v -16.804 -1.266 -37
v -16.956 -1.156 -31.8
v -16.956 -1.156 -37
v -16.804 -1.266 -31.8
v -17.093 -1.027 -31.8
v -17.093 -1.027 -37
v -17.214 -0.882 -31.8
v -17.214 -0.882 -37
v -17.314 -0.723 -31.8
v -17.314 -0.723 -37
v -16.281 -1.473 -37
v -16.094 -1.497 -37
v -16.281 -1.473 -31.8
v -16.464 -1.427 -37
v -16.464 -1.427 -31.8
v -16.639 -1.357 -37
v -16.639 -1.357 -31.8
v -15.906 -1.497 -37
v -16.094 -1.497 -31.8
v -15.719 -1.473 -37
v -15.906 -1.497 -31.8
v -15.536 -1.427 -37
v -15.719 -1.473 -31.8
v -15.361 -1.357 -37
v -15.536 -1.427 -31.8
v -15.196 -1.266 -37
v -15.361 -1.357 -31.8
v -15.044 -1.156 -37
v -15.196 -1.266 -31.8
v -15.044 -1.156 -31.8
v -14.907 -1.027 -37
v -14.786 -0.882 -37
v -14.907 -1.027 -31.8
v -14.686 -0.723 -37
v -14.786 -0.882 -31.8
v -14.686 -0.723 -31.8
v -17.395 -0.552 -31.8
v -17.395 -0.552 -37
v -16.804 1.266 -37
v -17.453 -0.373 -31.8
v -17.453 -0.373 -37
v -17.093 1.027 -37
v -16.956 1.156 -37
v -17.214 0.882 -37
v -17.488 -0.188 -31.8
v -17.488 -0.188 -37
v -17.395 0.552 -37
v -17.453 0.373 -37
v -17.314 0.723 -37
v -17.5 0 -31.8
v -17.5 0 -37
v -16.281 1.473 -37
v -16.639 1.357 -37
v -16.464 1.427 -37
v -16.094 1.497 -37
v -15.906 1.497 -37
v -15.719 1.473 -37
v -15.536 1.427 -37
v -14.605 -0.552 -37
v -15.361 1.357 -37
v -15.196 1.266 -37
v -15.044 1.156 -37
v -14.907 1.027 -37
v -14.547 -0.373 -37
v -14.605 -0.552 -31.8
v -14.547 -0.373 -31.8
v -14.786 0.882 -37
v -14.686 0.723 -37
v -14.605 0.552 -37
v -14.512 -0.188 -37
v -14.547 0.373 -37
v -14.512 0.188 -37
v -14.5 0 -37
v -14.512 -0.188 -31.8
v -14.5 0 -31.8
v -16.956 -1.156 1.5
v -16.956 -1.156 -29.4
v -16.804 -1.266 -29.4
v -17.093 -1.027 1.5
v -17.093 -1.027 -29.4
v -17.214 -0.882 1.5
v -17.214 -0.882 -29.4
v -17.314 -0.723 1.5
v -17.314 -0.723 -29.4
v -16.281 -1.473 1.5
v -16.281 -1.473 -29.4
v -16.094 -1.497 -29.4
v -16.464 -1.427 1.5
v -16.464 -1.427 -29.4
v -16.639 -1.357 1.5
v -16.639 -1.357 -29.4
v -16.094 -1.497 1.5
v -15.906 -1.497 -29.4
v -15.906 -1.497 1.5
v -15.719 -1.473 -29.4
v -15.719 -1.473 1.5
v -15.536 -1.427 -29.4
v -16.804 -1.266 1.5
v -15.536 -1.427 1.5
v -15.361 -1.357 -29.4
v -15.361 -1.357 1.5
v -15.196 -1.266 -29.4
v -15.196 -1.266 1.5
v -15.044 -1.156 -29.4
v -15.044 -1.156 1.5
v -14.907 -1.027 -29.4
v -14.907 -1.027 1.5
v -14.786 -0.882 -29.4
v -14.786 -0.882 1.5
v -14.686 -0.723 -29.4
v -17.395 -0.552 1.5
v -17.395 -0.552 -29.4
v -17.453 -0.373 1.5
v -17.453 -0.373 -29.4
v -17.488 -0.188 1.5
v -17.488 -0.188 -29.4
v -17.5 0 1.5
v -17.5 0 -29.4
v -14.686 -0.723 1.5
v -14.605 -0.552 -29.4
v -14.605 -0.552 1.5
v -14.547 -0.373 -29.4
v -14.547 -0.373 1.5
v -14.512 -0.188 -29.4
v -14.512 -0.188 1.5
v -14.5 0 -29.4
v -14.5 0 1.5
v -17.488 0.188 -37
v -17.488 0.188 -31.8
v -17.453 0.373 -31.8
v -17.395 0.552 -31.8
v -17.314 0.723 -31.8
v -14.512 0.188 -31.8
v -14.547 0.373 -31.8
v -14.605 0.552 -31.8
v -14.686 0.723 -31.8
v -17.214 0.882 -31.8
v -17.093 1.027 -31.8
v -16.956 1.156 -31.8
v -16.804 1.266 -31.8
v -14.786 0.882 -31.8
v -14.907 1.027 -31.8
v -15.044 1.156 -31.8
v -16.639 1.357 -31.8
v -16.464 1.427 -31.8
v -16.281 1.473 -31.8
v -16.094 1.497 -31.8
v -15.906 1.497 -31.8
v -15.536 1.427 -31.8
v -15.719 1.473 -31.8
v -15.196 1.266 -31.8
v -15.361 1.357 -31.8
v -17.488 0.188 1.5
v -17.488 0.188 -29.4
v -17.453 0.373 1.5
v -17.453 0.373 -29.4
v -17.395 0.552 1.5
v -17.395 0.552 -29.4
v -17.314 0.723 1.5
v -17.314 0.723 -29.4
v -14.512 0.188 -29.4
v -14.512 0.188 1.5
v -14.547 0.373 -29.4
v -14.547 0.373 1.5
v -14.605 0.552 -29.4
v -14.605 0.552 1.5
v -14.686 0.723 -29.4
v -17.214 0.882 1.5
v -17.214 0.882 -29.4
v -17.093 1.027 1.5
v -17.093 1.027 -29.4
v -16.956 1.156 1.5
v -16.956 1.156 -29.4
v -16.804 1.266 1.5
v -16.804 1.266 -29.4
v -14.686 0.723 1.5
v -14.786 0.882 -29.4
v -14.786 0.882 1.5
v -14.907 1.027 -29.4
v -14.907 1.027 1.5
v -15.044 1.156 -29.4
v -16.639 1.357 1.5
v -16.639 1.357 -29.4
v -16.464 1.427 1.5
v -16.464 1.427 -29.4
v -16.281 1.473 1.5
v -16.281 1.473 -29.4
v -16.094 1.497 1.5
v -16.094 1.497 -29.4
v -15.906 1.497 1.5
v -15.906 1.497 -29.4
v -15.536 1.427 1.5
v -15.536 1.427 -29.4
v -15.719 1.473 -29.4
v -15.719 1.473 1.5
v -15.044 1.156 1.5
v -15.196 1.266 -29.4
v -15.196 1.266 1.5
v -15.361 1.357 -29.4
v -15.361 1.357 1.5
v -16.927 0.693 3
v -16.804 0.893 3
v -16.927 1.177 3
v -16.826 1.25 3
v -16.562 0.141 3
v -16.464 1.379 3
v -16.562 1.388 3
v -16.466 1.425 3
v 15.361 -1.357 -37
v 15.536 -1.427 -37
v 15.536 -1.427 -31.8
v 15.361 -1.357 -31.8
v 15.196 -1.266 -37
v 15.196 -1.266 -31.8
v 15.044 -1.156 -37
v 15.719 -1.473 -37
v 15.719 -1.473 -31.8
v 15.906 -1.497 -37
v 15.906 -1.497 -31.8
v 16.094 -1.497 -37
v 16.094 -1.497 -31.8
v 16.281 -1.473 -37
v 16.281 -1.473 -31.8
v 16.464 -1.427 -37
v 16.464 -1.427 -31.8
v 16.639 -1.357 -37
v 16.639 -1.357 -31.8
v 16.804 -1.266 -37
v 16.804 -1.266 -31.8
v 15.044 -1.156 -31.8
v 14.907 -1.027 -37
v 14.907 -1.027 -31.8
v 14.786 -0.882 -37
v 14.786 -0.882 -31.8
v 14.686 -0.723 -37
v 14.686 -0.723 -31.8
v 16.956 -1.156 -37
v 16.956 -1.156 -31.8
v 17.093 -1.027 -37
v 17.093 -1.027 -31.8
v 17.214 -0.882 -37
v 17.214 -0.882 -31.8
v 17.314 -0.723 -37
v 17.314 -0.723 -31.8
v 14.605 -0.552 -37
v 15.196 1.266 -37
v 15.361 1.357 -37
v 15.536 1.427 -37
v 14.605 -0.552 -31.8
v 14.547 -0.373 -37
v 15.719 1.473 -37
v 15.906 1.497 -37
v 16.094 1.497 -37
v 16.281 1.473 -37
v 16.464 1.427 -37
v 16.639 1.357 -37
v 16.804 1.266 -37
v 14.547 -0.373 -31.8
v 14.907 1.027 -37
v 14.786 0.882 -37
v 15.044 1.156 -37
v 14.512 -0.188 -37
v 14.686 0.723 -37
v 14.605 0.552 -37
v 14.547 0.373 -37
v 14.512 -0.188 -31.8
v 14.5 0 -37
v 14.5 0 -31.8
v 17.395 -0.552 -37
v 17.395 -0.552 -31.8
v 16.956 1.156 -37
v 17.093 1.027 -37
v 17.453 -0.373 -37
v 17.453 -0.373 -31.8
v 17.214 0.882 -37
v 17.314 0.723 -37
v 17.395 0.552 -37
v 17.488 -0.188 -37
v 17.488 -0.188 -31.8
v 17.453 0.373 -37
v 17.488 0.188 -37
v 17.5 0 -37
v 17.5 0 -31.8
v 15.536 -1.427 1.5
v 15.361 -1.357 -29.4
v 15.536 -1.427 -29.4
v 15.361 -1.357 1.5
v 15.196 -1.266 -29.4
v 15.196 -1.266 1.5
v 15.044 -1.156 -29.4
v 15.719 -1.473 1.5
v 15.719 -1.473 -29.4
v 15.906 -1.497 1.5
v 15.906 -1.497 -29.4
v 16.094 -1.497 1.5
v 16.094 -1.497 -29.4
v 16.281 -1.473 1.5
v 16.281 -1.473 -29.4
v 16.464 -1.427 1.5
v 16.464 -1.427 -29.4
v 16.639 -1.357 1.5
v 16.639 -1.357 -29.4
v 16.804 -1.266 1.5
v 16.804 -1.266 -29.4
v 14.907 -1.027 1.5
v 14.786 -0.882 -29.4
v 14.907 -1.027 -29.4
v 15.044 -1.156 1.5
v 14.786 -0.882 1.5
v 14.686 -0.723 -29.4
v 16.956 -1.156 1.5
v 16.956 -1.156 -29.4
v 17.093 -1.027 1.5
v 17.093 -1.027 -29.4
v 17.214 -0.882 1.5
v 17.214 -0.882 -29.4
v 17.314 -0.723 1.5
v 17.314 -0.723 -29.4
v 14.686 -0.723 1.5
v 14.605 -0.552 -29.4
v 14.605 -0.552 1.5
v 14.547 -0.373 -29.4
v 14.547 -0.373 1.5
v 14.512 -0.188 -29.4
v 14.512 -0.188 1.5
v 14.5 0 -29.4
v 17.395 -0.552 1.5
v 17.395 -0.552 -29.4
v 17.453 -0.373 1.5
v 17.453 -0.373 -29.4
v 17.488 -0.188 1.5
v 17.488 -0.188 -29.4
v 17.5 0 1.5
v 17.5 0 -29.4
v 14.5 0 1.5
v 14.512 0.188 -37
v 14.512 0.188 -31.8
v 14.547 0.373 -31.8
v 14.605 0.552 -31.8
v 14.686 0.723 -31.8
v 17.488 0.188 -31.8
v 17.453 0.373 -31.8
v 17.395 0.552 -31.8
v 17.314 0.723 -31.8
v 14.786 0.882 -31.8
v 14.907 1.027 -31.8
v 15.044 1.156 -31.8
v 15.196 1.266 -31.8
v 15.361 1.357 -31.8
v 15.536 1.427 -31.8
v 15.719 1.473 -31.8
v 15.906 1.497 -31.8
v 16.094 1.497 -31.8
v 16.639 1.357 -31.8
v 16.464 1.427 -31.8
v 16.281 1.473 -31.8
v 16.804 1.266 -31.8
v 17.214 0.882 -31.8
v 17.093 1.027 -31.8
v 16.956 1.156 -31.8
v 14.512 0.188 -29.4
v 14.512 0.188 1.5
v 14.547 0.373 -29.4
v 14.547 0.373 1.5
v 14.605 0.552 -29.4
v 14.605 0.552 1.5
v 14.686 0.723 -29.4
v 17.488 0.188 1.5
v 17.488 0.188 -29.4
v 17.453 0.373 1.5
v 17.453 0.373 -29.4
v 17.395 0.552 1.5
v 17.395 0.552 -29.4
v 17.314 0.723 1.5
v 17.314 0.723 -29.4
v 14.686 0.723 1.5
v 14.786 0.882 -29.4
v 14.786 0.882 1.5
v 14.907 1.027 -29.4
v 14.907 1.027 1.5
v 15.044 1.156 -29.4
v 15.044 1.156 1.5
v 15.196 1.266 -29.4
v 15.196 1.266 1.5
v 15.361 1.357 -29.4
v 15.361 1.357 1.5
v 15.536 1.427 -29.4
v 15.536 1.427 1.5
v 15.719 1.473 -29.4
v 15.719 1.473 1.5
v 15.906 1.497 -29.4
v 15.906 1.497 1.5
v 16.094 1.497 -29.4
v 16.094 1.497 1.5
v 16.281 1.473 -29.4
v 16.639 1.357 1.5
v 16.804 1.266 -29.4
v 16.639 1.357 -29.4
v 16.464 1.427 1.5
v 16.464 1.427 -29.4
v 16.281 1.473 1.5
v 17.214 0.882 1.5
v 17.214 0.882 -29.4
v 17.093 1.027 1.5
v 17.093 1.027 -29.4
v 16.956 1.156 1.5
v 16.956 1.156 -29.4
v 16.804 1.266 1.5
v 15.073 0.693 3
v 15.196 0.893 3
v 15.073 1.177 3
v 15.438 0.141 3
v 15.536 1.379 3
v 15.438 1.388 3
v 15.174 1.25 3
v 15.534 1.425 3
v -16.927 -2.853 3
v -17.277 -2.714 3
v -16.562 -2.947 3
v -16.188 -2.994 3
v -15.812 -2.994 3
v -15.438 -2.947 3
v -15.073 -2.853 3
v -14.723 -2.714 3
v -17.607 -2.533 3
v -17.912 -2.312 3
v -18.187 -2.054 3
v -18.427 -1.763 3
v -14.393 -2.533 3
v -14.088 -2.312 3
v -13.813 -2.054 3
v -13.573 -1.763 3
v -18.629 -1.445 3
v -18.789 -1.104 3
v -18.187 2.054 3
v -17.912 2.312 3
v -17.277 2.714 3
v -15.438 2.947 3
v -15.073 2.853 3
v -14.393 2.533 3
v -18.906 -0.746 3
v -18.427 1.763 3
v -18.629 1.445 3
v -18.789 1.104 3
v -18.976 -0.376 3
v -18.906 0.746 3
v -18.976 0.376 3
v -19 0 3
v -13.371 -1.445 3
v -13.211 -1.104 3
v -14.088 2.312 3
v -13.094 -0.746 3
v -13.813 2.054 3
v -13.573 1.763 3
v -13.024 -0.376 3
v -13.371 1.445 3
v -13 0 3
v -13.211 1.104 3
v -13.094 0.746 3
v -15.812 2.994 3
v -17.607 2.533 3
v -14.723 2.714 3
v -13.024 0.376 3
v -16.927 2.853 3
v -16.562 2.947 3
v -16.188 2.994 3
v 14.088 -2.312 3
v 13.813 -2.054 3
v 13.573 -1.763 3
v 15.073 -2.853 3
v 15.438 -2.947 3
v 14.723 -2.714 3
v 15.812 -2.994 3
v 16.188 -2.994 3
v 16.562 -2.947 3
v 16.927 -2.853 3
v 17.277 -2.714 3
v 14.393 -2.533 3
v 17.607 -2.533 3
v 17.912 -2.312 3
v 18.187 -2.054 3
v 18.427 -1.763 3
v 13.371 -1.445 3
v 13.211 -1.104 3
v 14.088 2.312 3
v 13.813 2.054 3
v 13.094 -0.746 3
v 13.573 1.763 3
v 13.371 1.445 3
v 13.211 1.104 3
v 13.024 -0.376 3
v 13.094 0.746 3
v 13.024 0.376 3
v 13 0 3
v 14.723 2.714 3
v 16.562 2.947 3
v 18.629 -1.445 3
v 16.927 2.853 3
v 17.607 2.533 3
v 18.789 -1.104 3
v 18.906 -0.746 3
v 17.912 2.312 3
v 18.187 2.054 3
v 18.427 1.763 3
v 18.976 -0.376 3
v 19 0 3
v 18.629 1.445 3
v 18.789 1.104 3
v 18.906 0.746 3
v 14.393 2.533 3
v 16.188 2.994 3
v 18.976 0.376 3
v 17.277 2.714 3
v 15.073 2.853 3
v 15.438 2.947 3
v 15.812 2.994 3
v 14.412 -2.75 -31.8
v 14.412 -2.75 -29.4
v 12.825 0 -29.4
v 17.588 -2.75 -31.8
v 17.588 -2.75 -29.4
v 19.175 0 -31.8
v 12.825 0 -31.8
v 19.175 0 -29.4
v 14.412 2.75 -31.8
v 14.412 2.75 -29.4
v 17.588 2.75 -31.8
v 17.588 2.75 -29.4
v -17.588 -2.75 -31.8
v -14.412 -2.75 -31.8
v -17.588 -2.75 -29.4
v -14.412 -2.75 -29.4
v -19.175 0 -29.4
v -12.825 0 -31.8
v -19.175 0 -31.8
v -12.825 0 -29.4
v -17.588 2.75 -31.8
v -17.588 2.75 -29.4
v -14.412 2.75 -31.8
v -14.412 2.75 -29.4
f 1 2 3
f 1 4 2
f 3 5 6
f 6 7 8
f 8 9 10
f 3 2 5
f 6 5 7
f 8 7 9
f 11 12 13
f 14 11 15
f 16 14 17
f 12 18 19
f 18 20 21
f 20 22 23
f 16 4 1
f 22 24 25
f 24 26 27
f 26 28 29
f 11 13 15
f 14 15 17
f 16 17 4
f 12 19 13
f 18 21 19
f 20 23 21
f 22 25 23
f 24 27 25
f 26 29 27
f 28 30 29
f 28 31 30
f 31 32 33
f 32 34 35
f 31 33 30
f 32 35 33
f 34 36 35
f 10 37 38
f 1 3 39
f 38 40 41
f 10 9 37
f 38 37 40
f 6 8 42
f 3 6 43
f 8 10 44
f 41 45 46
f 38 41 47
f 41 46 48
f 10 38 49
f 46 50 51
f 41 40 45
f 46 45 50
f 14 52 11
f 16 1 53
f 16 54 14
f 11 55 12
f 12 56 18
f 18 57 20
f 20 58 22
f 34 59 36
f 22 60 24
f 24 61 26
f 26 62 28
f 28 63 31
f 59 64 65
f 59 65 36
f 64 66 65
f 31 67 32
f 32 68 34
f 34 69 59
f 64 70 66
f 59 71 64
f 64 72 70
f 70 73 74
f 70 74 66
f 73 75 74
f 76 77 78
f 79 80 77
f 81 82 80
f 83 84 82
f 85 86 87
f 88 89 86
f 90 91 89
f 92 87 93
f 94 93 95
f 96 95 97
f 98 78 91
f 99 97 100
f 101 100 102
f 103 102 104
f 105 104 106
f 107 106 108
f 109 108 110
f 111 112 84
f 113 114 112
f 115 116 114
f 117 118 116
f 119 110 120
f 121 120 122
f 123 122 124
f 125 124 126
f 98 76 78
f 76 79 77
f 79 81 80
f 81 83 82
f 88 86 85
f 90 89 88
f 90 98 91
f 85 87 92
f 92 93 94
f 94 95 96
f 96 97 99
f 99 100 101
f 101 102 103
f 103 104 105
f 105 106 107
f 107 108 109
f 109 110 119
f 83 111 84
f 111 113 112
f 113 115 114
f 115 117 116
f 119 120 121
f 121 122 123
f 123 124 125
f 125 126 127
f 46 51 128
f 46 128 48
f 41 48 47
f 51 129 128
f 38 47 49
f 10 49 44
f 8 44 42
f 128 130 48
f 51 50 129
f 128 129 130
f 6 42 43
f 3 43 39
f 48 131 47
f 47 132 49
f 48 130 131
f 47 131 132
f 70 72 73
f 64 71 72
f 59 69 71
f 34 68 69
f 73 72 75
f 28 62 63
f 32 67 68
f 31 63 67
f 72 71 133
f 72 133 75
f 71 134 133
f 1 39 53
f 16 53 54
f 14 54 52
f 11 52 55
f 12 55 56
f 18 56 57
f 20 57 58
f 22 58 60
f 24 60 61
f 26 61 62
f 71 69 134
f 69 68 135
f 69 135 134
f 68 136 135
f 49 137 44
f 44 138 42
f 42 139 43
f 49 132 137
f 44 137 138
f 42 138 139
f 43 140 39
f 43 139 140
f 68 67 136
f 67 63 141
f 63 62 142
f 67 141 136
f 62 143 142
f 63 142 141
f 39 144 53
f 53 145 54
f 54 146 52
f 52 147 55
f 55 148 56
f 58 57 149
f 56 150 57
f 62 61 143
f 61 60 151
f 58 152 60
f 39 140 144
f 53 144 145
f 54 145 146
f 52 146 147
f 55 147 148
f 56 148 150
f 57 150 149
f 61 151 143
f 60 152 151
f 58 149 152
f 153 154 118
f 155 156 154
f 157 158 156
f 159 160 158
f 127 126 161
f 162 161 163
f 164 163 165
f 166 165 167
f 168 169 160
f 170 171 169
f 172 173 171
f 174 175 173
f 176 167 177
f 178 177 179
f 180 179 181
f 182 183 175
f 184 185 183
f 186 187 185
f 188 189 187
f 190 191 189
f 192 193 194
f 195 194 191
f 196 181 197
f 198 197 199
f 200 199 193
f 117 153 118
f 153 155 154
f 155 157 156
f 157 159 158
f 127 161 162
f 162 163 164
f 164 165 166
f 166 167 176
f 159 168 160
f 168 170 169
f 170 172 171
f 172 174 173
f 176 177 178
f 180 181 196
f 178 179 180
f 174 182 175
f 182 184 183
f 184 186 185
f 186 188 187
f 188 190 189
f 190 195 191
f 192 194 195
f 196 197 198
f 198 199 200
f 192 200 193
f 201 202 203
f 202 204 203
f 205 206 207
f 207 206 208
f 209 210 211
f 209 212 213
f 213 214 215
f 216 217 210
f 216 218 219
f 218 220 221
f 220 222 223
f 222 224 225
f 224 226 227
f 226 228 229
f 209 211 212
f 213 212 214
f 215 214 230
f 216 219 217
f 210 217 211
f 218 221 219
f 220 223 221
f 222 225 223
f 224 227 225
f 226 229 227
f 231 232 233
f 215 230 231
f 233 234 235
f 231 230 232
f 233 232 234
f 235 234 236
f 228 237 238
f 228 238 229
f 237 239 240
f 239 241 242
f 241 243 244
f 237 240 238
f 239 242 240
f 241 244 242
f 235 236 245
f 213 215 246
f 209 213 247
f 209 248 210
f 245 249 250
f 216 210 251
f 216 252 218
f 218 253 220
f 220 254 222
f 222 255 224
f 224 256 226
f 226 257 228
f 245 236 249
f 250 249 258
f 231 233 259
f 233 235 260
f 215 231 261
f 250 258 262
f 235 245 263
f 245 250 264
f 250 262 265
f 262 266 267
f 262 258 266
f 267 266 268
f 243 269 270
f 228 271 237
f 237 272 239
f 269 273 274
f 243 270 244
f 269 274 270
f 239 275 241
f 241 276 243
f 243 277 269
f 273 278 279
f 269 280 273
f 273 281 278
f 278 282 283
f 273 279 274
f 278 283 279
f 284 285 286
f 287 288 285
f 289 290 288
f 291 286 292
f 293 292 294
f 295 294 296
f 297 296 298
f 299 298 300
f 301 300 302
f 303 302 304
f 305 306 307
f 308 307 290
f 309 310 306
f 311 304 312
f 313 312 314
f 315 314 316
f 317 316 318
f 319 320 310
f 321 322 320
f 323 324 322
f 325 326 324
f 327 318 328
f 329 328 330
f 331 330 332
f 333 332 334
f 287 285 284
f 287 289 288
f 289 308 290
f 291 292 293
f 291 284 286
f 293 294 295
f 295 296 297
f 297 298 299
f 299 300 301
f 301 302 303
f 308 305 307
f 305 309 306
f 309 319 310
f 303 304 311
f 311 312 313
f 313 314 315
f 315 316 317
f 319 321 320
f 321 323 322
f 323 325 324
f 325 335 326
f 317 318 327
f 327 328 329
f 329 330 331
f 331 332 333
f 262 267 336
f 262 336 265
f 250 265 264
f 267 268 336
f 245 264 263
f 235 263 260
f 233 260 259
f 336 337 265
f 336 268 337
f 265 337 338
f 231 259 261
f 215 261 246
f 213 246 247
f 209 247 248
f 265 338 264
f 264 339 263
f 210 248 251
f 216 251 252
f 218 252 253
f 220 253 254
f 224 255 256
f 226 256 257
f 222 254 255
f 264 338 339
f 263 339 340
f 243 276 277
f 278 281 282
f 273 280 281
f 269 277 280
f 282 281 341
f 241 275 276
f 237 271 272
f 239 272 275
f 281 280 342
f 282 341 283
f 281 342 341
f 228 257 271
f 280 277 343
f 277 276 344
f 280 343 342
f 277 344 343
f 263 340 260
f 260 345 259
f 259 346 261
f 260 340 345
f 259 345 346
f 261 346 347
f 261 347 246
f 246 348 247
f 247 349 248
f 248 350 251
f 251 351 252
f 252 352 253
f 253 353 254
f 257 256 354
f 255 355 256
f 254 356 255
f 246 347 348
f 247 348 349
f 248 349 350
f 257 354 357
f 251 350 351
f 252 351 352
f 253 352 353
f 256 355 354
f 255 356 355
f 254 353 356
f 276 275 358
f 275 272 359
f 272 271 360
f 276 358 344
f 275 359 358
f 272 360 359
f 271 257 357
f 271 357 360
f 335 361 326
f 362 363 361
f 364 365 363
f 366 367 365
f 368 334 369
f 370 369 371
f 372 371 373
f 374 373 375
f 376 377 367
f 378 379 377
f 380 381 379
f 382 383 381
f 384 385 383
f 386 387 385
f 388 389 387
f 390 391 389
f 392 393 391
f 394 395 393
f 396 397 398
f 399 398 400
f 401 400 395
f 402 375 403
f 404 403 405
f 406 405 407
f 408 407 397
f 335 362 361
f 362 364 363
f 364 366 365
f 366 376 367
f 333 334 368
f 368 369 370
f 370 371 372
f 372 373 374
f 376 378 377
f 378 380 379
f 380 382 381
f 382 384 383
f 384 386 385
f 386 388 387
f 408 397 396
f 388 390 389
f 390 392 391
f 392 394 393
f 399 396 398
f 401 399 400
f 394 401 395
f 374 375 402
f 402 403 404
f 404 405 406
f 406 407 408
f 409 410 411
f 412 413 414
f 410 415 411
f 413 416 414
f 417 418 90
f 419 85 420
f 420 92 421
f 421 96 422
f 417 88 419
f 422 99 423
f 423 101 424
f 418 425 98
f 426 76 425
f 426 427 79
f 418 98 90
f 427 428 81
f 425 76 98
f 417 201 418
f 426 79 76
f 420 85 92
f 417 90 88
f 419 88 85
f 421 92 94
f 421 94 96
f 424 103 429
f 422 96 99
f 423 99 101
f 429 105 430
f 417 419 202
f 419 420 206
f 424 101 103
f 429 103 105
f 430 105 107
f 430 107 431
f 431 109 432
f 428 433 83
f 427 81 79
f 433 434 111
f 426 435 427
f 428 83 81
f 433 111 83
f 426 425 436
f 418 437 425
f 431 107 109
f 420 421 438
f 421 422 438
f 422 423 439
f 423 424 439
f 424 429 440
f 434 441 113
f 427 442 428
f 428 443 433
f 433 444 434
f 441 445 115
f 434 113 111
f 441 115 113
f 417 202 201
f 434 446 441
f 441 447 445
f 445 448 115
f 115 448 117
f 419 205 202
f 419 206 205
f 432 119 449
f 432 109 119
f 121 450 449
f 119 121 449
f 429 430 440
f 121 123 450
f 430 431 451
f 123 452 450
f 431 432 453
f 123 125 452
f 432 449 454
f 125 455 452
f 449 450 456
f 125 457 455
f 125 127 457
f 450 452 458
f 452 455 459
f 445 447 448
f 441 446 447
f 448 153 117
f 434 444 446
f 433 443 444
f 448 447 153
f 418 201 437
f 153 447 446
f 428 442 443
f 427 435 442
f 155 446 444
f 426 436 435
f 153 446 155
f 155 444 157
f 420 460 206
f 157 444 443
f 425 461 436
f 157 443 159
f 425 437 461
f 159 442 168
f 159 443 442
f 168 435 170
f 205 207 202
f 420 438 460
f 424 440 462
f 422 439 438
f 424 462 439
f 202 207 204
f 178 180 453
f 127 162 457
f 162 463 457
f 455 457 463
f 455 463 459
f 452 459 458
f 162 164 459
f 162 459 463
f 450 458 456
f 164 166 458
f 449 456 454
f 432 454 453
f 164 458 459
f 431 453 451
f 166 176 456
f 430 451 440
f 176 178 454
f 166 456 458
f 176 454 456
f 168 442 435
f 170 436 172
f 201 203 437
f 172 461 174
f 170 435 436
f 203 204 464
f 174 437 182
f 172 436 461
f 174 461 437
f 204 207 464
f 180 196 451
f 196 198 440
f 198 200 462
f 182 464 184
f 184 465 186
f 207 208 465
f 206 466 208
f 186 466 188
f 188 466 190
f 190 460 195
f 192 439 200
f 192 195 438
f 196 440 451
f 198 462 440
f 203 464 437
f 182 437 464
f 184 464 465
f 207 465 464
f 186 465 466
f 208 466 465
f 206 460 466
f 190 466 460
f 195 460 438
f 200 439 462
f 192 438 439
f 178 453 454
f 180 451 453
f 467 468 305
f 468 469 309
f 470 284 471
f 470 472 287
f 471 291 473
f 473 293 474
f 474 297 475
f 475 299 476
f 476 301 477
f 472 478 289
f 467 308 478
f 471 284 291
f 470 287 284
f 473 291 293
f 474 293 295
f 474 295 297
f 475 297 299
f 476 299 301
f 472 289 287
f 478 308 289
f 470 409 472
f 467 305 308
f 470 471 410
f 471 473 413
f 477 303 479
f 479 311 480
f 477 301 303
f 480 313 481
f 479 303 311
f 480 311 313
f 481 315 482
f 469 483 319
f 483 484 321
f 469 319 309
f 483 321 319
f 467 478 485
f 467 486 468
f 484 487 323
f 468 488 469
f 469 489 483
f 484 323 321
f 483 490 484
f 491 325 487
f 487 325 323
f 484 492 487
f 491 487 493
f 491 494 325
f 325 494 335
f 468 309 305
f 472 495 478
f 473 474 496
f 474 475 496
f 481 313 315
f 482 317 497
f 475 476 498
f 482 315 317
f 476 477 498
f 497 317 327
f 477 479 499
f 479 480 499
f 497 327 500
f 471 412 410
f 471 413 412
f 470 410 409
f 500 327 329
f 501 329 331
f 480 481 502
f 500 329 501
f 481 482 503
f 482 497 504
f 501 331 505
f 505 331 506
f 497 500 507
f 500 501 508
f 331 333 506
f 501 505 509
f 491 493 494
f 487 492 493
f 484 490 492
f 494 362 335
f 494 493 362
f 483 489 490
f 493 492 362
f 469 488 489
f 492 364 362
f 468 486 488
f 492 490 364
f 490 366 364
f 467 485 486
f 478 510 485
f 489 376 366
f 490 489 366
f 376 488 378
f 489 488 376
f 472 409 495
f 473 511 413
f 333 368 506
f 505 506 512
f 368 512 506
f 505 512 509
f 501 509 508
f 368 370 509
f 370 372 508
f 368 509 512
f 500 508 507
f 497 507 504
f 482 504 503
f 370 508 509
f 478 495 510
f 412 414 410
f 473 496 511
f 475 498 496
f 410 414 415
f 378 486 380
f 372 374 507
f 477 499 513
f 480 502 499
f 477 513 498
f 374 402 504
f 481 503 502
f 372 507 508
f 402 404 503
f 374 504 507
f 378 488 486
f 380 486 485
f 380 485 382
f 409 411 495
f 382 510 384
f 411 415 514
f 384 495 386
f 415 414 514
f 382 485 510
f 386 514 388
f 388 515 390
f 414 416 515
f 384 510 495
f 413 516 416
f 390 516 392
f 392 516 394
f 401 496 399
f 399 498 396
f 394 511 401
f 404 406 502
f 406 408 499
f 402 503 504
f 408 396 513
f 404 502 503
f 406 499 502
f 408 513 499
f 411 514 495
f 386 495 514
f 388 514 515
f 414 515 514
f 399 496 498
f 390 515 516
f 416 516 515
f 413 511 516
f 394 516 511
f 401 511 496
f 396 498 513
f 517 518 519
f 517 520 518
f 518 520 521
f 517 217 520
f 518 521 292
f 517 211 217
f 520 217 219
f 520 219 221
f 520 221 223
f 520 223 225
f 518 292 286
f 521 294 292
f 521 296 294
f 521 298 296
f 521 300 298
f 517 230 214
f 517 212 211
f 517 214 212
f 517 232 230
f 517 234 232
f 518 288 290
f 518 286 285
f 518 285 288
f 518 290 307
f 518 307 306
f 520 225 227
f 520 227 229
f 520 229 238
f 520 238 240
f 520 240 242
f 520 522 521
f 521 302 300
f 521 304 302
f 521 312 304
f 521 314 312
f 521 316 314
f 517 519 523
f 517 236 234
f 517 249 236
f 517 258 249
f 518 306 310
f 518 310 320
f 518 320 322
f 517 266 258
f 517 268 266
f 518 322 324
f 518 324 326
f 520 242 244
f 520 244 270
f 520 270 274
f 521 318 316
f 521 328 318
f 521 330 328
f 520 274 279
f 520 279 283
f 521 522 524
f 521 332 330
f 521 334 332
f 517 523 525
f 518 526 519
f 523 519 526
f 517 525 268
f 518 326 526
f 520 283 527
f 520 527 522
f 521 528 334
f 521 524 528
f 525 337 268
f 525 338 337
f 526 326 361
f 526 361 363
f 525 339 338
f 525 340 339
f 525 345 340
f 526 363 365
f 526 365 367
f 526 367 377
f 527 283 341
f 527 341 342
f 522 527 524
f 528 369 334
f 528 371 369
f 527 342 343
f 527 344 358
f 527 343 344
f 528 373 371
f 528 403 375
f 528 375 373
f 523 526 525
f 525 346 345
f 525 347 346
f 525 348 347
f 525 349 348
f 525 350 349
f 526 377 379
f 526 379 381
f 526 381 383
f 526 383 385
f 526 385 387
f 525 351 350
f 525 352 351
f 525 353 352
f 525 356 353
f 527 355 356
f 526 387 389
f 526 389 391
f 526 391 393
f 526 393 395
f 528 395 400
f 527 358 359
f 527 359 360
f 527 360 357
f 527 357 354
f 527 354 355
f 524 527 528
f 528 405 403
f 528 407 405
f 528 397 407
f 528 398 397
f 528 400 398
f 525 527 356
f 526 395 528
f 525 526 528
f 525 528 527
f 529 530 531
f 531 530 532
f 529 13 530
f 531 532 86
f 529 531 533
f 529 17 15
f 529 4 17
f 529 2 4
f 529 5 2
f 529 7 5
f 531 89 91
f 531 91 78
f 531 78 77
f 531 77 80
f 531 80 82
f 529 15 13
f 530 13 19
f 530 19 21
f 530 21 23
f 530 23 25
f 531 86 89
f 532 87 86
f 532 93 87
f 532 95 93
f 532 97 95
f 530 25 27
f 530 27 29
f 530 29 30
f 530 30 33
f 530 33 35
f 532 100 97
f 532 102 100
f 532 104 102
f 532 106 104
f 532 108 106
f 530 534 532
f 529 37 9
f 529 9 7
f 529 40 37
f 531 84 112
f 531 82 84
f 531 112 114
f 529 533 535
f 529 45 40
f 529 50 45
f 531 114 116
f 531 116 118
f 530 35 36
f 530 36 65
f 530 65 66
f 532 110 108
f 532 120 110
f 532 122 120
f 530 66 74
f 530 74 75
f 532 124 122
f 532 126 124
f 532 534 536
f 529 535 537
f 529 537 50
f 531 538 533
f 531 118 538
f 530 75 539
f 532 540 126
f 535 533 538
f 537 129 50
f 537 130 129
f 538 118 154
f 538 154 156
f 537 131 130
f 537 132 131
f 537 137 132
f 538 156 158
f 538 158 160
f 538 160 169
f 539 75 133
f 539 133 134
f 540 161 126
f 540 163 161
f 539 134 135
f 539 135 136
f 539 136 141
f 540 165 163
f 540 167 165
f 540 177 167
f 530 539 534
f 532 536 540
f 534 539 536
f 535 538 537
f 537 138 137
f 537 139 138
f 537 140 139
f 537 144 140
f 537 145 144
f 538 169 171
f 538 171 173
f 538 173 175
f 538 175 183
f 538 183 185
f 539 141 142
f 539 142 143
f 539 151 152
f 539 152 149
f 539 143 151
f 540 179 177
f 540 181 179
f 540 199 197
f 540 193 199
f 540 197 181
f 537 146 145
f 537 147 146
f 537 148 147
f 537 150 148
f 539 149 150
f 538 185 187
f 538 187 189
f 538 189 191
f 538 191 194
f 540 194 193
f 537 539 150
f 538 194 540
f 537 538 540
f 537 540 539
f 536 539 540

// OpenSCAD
$fn = 50;

difference() {
	union() {
		translate(v = [-16, 0, 3]) {
			rotate(a = [0, 0, 0]) {
				difference() {
					union() {
						translate(v = [0, 0, -40.0]) {
							cylinder(h = 40, r = 1.5);
						}
						translate(v = [0, 0, -1.5]) {
							cylinder(h = 1.5, r1 = 1.5, r2 = 3);
						}
					}
					union();
				}
			}
		}
		translate(v = [-16, 0, -31.799999999999997]) {
			rotate(a = [0, 0, 0]) {
				difference() {
					union() {
						linear_extrude(height = 2.4) {
							polygon(points = [[3.1754264805429417, 0.0], [1.5877132402714713, 2.75], [-1.5877132402714702, 2.7500000000000004], [-3.1754264805429417, 3.888775875324659e-16], [-1.5877132402714722, -2.7499999999999996], [1.5877132402714687, -2.7500000000000013]]);
						}
					}
					union();
				}
			}
		}
		translate(v = [16, 0, 3]) {
			rotate(a = [0, 0, 0]) {
				difference() {
					union() {
						translate(v = [0, 0, -40.0]) {
							cylinder(h = 40, r = 1.5);
						}
						translate(v = [0, 0, -1.5]) {
							cylinder(h = 1.5, r1 = 1.5, r2 = 3);
						}
					}
					union();
				}
			}
		}
		translate(v = [16, 0, -31.799999999999997]) {
			rotate(a = [0, 0, 0]) {
				difference() {
					union() {
						linear_extrude(height = 2.4) {
							polygon(points = [[3.1754264805429417, 0.0], [1.5877132402714713, 2.75], [-1.5877132402714702, 2.7500000000000004], [-3.1754264805429417, 3.888775875324659e-16], [-1.5877132402714722, -2.7499999999999996], [1.5877132402714687, -2.7500000000000013]]);
						}
					}
					union();
				}
			}
		}
	}
	union();
}
